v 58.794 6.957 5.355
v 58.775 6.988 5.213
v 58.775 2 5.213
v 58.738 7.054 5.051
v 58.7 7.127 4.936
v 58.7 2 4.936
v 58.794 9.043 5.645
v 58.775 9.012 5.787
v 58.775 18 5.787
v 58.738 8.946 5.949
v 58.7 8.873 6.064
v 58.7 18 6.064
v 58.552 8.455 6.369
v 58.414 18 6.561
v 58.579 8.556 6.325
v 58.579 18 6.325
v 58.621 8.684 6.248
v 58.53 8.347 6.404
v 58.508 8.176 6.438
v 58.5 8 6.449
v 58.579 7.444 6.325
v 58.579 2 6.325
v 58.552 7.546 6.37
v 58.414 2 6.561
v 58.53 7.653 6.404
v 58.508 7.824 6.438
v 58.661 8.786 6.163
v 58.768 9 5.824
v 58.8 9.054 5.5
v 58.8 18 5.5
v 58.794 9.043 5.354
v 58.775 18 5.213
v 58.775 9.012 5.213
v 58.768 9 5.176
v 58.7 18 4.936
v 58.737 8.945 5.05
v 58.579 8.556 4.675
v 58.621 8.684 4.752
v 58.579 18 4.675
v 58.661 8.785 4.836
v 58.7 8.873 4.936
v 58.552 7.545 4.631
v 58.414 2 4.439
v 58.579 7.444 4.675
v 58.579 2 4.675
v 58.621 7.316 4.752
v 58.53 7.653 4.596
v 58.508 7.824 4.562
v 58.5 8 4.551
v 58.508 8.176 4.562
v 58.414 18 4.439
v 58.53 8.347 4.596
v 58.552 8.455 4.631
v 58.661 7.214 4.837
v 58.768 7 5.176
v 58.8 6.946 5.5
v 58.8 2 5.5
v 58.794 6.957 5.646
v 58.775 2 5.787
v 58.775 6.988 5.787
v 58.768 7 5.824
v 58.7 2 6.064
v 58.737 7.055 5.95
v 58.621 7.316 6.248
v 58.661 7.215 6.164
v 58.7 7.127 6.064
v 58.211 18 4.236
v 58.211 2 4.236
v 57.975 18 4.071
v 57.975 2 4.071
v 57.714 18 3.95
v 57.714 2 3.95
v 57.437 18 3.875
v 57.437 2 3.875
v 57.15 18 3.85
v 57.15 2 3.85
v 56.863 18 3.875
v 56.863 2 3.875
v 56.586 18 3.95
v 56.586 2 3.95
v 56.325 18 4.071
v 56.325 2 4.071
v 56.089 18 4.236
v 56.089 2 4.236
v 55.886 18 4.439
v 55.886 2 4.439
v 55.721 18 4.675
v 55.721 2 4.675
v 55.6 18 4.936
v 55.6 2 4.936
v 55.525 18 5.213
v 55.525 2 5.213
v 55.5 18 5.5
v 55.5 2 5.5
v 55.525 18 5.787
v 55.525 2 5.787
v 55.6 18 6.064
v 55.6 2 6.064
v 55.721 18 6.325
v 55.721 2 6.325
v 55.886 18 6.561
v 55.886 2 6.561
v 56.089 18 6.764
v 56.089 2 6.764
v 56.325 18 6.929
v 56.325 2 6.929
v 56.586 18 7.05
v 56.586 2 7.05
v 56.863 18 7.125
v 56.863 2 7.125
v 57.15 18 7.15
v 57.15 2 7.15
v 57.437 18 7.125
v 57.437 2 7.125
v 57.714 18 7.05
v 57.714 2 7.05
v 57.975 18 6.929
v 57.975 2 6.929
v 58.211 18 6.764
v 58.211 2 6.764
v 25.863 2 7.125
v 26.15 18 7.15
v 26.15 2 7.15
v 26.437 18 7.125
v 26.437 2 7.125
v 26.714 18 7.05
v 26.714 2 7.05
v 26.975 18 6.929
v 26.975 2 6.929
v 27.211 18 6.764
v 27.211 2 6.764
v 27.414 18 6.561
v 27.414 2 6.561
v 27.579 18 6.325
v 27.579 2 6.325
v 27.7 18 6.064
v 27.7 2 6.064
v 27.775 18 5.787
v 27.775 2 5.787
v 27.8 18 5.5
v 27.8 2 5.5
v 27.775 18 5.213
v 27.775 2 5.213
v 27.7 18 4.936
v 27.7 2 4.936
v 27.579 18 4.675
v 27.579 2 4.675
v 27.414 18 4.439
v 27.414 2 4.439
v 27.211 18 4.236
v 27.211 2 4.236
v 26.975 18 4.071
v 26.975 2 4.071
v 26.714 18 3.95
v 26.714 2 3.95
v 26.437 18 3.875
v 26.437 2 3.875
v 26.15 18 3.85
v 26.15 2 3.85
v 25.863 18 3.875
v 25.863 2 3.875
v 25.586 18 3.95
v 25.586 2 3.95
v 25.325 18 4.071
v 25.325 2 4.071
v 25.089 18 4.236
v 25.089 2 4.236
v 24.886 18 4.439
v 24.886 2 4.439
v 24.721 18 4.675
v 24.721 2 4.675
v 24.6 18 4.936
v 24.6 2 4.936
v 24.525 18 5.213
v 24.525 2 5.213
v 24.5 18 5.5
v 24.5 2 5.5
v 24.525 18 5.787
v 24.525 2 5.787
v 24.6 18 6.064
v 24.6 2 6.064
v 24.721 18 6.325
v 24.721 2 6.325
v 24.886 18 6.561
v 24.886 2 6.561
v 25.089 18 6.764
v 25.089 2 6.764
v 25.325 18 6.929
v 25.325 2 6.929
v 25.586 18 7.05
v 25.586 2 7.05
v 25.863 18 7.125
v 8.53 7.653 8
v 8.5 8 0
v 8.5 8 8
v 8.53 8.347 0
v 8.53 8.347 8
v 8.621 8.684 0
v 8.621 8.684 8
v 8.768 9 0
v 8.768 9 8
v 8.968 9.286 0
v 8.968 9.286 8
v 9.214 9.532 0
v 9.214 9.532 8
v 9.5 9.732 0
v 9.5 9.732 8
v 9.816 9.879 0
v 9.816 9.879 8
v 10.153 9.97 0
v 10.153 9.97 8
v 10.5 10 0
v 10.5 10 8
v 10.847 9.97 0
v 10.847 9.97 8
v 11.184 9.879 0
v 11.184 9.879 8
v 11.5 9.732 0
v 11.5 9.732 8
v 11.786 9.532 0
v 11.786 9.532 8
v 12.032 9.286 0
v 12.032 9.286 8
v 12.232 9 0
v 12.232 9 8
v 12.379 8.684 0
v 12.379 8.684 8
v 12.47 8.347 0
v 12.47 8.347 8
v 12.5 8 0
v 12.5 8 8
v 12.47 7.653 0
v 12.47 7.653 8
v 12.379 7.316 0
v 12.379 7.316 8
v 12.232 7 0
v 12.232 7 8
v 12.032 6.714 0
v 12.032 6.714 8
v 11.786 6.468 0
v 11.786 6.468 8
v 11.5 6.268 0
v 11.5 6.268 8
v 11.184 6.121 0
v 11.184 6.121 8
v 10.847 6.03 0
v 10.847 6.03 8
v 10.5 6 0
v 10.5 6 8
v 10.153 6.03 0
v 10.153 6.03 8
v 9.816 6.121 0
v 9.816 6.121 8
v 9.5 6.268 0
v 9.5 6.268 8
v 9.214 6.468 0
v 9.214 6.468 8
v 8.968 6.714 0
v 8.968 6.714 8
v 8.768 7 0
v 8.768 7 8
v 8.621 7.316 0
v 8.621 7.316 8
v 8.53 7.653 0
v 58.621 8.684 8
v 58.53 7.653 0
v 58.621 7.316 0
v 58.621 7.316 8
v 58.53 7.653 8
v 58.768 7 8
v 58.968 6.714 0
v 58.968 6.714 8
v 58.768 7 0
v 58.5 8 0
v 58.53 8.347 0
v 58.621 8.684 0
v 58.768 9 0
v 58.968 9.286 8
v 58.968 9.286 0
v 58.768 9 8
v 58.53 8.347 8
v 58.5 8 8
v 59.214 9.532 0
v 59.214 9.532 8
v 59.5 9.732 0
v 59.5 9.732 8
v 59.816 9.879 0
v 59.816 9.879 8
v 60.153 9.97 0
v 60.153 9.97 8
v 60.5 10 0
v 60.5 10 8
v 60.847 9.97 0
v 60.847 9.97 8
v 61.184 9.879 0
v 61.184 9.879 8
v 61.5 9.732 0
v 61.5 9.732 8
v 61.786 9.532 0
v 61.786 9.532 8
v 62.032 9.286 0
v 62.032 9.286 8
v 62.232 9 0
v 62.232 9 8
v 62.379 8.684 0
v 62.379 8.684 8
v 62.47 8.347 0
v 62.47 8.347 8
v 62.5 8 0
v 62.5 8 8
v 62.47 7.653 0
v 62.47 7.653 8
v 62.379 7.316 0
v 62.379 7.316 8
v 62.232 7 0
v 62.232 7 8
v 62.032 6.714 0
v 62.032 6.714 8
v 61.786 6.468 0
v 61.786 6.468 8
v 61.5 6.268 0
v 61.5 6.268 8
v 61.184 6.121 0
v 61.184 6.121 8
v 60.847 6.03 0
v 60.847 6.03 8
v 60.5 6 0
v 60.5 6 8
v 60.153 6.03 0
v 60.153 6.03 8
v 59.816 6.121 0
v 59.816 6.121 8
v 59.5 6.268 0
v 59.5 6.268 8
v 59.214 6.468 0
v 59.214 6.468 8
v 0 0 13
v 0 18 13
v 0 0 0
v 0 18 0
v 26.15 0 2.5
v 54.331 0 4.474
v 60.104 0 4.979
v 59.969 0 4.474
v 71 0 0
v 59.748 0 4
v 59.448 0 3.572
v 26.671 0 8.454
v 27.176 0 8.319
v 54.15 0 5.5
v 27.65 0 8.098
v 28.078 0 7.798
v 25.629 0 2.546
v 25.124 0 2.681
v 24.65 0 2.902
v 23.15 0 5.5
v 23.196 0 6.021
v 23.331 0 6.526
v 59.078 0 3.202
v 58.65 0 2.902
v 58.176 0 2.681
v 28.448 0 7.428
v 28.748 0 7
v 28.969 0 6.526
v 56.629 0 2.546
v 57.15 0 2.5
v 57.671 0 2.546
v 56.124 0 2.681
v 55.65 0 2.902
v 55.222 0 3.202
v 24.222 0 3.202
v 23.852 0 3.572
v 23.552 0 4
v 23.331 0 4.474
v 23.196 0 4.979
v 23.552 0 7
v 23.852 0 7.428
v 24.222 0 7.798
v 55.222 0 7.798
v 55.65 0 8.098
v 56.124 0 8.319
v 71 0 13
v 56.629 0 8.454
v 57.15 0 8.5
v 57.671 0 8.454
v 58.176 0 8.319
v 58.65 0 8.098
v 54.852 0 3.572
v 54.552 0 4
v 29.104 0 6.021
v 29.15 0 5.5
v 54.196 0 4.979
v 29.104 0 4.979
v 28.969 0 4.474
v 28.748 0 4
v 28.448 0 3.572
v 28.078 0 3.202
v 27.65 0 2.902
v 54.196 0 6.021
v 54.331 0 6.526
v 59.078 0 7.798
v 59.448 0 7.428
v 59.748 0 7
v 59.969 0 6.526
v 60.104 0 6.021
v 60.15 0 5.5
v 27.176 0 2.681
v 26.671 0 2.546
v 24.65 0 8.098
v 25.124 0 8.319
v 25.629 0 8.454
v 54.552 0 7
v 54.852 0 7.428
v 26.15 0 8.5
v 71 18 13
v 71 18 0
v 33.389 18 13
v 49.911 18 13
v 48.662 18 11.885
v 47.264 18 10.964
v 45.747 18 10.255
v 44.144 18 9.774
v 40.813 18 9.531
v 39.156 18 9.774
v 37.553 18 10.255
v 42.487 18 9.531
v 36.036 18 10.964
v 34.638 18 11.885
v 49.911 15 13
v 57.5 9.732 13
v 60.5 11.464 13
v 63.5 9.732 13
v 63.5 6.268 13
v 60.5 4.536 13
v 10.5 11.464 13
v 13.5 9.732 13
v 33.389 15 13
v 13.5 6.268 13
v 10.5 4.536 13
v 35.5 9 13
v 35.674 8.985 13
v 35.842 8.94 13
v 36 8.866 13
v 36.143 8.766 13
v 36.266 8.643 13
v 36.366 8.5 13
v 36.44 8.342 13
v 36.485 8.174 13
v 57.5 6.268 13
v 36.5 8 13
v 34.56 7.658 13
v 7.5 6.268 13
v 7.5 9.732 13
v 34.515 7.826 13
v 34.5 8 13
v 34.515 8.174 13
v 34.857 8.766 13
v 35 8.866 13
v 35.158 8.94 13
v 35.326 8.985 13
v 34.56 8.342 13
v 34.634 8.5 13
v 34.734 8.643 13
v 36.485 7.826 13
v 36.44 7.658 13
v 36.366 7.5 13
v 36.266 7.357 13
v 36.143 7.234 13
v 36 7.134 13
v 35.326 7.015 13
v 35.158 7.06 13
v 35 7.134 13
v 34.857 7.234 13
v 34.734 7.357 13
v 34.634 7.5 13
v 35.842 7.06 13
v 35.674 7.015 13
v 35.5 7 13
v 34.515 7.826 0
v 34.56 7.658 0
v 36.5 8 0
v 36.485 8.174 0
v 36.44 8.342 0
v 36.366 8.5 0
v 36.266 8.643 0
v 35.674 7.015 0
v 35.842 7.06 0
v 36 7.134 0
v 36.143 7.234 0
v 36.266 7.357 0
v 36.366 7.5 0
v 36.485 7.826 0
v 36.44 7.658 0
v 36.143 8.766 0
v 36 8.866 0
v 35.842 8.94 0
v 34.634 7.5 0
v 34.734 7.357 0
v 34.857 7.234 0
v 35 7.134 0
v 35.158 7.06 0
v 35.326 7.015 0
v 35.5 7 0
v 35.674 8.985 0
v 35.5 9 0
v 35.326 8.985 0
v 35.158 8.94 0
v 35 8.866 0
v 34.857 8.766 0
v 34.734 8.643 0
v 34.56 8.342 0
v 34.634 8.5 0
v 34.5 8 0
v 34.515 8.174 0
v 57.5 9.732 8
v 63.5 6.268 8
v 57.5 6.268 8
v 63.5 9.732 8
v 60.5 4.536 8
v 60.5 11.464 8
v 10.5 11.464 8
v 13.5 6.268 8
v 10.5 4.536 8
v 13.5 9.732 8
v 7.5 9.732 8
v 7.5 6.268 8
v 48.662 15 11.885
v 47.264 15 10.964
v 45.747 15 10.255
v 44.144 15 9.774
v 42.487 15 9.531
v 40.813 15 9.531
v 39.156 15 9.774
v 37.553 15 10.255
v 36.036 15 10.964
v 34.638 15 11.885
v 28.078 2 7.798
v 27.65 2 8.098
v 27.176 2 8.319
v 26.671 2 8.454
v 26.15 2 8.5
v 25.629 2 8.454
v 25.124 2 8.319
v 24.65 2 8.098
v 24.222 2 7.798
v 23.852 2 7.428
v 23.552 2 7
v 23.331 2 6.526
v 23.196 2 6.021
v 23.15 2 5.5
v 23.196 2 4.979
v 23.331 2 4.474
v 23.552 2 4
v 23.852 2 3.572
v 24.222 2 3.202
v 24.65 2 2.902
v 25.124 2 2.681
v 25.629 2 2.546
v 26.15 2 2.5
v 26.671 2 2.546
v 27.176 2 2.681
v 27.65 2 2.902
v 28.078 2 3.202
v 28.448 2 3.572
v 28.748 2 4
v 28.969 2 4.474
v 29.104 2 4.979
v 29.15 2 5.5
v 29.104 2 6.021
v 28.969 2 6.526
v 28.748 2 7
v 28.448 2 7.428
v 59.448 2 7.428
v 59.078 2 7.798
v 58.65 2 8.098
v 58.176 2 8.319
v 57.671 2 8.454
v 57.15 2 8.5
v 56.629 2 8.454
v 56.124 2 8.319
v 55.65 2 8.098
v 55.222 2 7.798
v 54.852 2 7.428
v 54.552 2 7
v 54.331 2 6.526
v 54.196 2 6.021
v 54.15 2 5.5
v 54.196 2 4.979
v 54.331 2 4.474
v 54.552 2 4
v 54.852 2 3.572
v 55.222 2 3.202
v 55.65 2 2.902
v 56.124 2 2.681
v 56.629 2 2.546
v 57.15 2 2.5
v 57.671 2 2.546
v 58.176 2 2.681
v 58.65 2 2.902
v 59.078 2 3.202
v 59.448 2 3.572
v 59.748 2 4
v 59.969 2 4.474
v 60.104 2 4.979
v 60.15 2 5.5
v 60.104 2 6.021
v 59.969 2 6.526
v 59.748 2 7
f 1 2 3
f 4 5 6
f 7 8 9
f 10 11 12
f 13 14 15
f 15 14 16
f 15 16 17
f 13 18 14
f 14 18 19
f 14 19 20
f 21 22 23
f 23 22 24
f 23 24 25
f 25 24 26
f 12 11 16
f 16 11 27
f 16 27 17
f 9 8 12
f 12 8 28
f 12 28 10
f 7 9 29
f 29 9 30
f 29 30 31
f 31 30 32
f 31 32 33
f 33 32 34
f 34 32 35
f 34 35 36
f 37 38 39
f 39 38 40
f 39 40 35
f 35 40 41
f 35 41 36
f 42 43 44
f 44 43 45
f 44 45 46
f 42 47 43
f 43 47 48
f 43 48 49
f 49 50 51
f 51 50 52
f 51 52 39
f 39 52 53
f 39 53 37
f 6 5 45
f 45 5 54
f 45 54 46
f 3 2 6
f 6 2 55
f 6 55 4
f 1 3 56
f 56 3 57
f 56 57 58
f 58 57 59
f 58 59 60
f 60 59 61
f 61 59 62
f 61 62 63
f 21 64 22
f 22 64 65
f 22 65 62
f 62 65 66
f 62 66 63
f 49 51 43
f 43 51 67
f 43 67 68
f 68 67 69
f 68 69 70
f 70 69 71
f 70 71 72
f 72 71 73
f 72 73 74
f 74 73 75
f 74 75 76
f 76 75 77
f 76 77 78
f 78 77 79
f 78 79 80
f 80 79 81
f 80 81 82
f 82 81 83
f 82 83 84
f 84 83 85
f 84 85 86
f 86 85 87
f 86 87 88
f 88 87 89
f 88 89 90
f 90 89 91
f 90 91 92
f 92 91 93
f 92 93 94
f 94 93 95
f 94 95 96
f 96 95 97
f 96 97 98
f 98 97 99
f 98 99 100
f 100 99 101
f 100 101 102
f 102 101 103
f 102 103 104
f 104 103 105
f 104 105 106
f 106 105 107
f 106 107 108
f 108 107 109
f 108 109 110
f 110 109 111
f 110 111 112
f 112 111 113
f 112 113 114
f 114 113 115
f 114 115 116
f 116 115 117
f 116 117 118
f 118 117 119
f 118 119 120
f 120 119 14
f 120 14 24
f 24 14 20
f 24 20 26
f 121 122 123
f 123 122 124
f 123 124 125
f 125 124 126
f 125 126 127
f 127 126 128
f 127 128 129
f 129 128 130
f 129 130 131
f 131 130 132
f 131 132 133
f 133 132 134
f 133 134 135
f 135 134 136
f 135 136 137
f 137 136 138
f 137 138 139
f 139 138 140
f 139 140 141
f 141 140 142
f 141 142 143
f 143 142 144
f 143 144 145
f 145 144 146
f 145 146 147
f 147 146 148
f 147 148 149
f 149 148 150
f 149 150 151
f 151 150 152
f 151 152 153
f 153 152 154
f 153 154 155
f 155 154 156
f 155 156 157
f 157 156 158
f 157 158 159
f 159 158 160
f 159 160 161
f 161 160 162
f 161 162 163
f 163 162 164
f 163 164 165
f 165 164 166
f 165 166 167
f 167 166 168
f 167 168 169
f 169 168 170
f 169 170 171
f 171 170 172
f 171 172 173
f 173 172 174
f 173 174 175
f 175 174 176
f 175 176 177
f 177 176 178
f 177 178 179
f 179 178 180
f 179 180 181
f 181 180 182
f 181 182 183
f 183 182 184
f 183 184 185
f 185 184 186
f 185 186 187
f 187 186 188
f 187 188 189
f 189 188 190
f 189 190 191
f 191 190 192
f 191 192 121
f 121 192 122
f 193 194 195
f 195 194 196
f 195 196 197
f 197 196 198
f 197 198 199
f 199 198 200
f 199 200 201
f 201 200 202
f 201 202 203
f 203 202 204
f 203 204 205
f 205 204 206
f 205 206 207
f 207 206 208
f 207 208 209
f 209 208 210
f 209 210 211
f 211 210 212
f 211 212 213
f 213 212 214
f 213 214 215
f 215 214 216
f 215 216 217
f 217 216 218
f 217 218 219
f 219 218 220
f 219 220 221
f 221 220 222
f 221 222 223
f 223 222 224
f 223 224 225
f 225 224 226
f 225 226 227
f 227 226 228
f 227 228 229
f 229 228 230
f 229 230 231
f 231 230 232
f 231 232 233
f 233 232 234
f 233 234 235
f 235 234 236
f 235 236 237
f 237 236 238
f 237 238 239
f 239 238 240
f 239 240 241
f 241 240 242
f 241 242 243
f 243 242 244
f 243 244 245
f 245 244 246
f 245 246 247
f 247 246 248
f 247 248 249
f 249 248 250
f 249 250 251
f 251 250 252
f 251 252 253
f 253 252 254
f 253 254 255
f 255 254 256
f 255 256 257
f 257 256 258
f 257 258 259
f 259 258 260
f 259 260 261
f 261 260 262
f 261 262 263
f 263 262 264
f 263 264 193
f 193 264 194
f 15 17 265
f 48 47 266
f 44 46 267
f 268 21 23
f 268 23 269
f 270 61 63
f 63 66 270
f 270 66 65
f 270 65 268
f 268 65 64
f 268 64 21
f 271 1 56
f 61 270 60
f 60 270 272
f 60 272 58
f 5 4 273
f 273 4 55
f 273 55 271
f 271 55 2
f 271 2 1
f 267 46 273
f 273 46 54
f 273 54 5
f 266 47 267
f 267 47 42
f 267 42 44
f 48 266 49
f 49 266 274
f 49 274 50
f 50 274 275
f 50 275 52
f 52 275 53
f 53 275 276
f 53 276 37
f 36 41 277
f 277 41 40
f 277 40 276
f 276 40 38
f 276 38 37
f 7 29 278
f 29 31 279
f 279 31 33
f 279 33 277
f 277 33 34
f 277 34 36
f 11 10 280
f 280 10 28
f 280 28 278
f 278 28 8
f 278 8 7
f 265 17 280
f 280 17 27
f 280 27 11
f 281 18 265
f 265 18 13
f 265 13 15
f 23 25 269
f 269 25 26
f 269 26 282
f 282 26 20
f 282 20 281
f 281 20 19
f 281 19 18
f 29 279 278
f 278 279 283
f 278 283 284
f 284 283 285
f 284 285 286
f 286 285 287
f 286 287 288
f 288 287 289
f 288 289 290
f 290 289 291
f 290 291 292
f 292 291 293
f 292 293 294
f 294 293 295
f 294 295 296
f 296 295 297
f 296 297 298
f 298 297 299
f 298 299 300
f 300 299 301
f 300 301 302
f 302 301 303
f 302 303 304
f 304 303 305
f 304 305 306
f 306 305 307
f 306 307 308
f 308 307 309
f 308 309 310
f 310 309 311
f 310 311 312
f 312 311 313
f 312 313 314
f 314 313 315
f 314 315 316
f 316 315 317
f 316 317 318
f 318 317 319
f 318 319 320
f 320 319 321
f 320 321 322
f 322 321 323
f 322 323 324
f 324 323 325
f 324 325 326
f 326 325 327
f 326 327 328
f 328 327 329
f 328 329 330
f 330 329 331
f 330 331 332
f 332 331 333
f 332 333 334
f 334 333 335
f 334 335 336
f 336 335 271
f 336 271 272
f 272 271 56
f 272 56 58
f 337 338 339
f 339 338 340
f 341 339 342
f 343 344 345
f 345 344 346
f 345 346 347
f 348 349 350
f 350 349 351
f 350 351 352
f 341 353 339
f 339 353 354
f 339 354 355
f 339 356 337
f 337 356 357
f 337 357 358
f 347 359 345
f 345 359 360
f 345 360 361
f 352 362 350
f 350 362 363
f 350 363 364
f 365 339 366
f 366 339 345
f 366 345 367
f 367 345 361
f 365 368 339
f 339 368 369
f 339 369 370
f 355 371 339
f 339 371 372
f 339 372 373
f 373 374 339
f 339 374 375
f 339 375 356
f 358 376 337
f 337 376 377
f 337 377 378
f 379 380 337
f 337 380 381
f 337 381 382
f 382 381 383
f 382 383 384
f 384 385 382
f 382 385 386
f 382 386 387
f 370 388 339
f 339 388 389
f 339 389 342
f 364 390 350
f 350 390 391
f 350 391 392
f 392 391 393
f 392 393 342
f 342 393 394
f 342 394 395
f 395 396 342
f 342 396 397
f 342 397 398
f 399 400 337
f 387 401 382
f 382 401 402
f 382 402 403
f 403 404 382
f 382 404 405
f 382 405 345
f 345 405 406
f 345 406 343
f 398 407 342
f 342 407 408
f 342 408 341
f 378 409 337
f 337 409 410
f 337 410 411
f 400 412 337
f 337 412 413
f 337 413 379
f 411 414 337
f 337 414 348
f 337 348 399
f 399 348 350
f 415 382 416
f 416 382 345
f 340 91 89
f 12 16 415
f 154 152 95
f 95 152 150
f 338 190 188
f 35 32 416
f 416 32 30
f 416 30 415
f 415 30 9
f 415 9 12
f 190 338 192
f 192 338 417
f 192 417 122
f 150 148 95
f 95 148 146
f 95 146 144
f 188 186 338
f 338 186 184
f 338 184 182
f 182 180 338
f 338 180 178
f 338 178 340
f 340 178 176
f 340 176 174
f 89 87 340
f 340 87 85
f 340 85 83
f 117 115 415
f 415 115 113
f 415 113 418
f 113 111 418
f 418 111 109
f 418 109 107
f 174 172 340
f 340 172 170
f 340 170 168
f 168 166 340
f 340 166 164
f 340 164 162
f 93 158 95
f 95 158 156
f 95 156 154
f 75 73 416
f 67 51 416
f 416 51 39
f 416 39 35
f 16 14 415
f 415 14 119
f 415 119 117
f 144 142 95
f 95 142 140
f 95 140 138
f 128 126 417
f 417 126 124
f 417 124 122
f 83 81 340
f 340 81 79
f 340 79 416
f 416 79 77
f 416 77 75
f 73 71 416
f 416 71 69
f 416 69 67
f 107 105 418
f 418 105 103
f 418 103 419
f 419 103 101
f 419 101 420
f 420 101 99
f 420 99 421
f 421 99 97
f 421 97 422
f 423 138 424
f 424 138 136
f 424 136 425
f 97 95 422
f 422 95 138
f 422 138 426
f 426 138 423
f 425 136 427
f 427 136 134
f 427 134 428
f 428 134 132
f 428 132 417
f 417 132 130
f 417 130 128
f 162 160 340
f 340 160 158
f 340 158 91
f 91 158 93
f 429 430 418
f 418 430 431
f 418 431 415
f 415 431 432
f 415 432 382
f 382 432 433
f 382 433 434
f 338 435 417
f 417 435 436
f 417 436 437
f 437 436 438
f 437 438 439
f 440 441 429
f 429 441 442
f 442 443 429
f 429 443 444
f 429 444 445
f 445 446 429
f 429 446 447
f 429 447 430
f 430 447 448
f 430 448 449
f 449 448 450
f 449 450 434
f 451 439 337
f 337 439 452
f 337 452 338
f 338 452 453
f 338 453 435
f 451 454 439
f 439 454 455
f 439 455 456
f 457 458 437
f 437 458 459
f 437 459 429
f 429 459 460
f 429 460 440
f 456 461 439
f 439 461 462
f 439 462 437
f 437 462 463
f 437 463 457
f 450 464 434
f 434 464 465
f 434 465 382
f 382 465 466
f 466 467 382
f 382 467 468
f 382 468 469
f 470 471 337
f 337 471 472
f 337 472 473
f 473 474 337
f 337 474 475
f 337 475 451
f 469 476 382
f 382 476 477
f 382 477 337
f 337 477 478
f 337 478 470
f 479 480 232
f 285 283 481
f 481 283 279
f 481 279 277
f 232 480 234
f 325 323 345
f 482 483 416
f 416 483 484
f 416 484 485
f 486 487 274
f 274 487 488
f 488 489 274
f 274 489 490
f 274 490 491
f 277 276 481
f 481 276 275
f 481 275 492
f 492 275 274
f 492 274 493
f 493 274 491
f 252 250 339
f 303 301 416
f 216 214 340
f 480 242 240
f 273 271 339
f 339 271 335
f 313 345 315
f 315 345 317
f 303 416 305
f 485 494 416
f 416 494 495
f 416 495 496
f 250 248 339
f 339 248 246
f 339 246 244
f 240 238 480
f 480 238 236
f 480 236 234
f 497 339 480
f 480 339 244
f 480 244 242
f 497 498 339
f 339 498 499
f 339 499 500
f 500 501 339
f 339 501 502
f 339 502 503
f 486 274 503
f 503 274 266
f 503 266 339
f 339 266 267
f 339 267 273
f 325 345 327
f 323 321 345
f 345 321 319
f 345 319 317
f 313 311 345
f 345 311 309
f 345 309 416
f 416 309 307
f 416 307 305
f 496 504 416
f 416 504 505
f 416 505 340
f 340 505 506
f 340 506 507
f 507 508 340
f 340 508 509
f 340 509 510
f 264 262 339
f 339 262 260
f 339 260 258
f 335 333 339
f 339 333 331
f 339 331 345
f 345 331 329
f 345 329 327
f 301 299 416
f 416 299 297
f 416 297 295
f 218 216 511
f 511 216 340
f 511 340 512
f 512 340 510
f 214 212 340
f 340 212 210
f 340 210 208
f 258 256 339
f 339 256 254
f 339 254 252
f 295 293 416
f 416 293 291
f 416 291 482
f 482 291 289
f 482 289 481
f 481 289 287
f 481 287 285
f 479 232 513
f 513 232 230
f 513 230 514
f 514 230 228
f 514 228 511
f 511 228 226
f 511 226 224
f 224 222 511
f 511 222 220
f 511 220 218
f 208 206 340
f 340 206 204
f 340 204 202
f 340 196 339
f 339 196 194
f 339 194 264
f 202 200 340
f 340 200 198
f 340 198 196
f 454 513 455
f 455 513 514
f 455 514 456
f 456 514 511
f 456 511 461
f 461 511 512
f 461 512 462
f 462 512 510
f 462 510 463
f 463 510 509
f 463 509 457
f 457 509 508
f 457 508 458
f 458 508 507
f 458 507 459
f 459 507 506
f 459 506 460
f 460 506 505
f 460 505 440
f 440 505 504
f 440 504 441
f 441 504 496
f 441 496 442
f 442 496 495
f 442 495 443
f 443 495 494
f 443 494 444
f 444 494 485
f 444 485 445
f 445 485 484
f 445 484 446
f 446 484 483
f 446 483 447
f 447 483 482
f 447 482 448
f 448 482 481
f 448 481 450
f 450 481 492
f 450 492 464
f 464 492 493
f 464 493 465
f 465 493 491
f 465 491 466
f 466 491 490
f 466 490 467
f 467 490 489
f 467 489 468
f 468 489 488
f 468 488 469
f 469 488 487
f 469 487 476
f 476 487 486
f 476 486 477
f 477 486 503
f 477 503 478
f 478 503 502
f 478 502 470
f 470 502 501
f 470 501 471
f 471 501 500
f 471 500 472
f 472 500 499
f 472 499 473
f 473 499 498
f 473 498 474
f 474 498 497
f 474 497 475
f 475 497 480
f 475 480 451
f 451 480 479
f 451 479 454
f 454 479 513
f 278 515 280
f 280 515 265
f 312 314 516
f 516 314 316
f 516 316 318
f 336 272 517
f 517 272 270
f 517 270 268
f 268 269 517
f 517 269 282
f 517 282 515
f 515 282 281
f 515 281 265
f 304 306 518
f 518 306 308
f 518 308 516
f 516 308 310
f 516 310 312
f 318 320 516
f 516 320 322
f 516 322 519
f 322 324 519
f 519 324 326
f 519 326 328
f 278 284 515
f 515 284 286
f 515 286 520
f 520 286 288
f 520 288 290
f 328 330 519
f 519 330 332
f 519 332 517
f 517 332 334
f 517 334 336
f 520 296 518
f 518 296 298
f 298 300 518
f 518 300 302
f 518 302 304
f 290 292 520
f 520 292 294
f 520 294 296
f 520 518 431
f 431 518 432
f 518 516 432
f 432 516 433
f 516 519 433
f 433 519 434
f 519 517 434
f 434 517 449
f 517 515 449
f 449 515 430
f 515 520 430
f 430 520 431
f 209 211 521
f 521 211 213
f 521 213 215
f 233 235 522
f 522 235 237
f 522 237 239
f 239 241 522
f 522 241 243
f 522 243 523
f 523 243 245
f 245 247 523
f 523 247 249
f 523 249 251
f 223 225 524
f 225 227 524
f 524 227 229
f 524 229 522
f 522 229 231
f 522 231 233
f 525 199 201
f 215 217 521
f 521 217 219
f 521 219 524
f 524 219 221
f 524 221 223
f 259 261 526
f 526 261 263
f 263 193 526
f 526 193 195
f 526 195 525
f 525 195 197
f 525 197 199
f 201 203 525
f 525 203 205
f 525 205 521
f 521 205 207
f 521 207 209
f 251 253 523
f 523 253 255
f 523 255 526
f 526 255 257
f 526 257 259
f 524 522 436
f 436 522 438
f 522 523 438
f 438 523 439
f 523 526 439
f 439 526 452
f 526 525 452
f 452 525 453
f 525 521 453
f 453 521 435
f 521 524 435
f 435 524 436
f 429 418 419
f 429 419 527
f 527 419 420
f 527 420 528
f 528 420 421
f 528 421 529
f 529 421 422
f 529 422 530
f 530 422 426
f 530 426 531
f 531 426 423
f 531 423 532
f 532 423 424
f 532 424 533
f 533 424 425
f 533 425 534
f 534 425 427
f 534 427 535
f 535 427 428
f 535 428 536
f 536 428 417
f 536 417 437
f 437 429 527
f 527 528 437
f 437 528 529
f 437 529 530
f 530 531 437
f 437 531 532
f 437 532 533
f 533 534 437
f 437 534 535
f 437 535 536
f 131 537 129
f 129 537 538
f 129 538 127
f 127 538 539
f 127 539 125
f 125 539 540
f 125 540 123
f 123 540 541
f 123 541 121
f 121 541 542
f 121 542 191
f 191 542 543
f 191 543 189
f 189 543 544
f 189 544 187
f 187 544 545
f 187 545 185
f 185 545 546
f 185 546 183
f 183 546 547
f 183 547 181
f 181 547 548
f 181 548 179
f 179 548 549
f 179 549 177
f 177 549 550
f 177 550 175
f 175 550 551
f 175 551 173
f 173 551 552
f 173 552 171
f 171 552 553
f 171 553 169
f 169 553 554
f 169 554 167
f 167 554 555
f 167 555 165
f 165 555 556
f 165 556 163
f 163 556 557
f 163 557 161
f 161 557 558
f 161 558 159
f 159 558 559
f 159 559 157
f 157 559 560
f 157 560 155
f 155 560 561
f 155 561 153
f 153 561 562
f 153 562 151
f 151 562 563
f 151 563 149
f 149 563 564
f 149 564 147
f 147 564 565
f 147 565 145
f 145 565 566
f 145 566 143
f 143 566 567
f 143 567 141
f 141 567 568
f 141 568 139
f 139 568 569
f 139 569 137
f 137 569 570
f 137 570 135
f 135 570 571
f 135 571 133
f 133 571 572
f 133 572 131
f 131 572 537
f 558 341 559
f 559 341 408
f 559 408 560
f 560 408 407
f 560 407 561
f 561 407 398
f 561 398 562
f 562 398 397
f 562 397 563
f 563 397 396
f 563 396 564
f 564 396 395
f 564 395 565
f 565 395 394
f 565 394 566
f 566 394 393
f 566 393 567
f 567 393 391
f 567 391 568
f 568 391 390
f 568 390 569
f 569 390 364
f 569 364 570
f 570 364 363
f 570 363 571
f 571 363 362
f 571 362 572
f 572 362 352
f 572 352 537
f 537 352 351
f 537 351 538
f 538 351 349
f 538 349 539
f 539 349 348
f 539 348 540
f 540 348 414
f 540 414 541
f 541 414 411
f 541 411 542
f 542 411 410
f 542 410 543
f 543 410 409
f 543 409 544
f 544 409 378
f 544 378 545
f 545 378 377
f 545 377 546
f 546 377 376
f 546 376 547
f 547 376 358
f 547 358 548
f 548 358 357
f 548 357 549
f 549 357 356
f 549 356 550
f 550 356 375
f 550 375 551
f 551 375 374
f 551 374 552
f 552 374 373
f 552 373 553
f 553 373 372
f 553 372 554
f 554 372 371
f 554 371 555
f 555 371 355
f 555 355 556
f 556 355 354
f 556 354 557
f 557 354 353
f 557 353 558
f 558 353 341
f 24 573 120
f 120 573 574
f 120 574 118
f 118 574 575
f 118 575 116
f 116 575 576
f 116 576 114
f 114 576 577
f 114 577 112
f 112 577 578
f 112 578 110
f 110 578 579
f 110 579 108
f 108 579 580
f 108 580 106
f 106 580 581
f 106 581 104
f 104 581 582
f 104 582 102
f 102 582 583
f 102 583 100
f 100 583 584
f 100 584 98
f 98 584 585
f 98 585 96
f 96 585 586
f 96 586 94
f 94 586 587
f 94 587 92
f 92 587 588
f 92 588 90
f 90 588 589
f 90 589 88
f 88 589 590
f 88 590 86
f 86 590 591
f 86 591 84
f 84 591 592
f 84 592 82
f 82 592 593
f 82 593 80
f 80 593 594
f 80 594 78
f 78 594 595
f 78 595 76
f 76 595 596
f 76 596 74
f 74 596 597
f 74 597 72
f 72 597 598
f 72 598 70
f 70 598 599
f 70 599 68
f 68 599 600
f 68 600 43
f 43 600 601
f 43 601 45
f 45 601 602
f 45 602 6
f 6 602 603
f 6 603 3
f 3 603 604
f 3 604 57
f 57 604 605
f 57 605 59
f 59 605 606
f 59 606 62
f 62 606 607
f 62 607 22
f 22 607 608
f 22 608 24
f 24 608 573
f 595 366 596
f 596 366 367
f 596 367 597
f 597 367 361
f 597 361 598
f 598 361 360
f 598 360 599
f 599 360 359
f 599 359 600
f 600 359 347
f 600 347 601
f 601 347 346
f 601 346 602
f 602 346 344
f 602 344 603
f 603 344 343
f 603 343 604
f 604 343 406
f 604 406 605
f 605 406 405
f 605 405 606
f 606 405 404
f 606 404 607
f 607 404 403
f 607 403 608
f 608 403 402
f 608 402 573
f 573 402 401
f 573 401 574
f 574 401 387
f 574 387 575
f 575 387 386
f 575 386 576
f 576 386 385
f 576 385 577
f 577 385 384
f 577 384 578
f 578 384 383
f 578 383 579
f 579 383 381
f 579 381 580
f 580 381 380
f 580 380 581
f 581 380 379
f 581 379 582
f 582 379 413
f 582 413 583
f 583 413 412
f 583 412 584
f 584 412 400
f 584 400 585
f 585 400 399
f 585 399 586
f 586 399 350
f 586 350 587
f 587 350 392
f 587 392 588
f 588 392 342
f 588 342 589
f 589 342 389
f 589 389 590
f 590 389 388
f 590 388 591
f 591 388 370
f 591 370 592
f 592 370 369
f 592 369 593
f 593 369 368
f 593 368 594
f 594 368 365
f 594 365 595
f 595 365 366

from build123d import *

# Parameters (mm, degrees)
SKETCH_1_W          = 71
SKETCH_1_H          = 18
EXTRUDE_1_DEPTH     = 13
SKETCH_2_R          = 1
SKETCH_2_R_2        = 2
CUT_EXTRUDE_1_DEPTH = 75.390859654
SKETCH_3_R          = 1.65
CUT_EXTRUDE_2_DEPTH = 75.390859654
CUT_EXTRUDE_3_DEPTH = 5
SKETCH_5_R          = 11.5
CUT_EXTRUDE_4_DEPTH = 3
SKETCH_6_R          = 3
CUT_EXTRUDE_5_DEPTH = 2


with BuildPart() as part:
    # Эскиз1 → Бобышка-Вытянуть1 (new body)
    with BuildSketch(Plane.XY):
        with Locations((35.5, 9)):
            Rectangle(SKETCH_1_W, SKETCH_1_H)
    extrude(amount=EXTRUDE_1_DEPTH)

    # Эскиз2 → Вырез-Вытянуть1 (cut, through all)
    with BuildSketch(Plane(origin=(0, 0, 0), x_dir=(-1, 0, 0), z_dir=(0, 0, -1))):
        with Locations((-35.5, 8)):
            Circle(SKETCH_2_R)
        with Locations((-10.5, 8)):
            Circle(SKETCH_2_R_2)
        with Locations((-60.5, 8)):
            Circle(SKETCH_2_R_2)
    extrude(amount=-CUT_EXTRUDE_1_DEPTH, mode=Mode.SUBTRACT)

    # Эскиз3 → Вырез-Вытянуть2 (cut, through all)
    with BuildSketch(Plane(origin=(0, 18, 0), x_dir=(1, 0, 0), z_dir=(0, 1, 0))):
        with Locations((57.15, -5.5)):
            Circle(SKETCH_3_R)
        with Locations((26.15, -5.5)):
            Circle(SKETCH_3_R)
    extrude(amount=-CUT_EXTRUDE_2_DEPTH, mode=Mode.SUBTRACT)

    # Эскиз4 → Вырез-Вытянуть3 (cut)
    with BuildSketch(Plane.XY.offset(13)):
        Polygon((60.5, 11.464101615), (57.5, 9.732050808), (57.5, 6.267949192), (60.5, 4.535898385), (63.5, 6.267949192), (63.5, 9.732050808), align=None)
        Polygon((13.5, 9.732050808), (10.5, 11.464101615), (7.5, 9.732050808), (7.5, 6.267949192), (10.5, 4.535898385), (13.5, 6.267949192), align=None)
    extrude(amount=-CUT_EXTRUDE_3_DEPTH, mode=Mode.SUBTRACT)

    # Эскиз5 → Вырез-Вытянуть4 (cut)
    with BuildSketch(Plane(origin=(0, 18, 0), x_dir=(1, 0, 0), z_dir=(0, 1, 0))):
        with Locations((41.65, -21)):
            Circle(SKETCH_5_R)
    extrude(amount=-CUT_EXTRUDE_4_DEPTH, mode=Mode.SUBTRACT)

    # Эскиз6 → Вырез-Вытянуть5 (cut)
    with BuildSketch(Plane.XZ):
        with Locations((26.15, 5.5)):
            Circle(SKETCH_6_R)
        with Locations((57.15, 5.5)):
            Circle(SKETCH_6_R)
    extrude(amount=-CUT_EXTRUDE_5_DEPTH, mode=Mode.SUBTRACT)


solid = part.part
